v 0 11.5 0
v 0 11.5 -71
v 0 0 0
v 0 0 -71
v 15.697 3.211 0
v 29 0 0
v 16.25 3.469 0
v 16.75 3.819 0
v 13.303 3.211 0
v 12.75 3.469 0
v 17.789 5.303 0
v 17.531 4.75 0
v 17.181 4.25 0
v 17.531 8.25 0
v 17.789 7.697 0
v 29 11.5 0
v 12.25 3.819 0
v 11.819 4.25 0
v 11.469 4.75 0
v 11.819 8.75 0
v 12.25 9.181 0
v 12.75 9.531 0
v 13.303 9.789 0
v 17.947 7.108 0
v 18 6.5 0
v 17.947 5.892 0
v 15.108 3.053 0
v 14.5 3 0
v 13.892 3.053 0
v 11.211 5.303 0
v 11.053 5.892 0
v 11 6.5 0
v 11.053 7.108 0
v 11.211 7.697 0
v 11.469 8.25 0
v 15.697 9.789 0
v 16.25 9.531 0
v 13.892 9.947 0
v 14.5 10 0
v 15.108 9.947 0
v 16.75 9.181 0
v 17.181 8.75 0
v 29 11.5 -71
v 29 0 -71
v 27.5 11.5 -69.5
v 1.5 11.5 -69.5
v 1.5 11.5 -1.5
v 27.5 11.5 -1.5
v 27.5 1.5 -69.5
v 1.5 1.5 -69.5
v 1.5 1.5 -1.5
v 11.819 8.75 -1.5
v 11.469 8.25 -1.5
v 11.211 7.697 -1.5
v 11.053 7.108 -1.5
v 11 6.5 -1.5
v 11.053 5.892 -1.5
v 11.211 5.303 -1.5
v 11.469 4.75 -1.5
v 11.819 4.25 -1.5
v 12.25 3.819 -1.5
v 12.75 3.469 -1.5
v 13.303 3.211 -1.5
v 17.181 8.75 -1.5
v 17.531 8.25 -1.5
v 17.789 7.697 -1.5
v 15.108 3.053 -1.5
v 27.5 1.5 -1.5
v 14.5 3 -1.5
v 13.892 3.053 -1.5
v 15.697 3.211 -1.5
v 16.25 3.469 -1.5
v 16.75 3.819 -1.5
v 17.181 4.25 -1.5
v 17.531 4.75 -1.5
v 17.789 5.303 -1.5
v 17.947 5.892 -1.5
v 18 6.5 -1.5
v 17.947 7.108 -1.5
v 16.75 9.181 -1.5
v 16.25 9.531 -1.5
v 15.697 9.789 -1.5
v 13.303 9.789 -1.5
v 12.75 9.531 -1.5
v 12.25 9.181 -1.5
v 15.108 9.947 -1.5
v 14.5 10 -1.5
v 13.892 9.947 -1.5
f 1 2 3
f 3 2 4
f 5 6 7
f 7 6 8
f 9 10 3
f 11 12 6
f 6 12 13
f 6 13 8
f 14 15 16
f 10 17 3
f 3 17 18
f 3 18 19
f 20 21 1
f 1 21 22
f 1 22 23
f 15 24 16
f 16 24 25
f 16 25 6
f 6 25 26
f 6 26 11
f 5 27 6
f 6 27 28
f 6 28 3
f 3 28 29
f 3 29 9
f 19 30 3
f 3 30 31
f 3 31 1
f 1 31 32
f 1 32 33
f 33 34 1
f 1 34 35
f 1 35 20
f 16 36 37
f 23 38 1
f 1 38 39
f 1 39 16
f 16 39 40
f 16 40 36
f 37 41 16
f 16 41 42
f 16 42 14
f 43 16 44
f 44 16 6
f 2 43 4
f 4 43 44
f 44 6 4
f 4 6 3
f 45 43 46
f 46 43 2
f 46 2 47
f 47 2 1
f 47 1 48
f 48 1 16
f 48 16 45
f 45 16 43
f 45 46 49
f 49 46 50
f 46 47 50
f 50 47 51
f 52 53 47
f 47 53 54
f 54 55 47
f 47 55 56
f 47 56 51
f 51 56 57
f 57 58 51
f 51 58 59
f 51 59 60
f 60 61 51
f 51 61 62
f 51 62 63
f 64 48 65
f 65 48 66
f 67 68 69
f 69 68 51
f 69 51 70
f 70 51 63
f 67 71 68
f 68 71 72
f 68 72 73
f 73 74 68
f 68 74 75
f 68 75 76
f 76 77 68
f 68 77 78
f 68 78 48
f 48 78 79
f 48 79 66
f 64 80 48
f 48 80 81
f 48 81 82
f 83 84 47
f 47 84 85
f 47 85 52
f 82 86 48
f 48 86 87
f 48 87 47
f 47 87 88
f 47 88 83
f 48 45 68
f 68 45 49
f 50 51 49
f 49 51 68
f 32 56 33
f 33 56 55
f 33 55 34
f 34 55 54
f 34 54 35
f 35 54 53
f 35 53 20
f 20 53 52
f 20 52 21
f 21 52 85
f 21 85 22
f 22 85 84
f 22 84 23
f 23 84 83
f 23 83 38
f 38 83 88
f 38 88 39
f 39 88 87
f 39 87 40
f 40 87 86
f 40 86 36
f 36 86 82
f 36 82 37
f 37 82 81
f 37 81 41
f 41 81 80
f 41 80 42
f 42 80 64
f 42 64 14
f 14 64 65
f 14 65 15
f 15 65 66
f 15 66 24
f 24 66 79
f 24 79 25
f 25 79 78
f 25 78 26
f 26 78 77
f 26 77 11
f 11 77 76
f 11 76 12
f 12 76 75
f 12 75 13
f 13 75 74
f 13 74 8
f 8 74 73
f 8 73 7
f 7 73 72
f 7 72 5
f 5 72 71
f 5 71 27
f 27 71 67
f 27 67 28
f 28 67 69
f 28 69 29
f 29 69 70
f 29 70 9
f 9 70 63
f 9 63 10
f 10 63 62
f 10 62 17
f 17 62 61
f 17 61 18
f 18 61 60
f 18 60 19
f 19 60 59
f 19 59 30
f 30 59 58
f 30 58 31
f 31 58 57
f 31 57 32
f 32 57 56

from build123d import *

# Parameters (mm, degrees)
SKETCH1_W           = 29
SKETCH1_H           = 71
BOSS_EXTRUDE1_DEPTH = 1.5
SKETCH2_W           = 29
SKETCH2_H           = 71
SKETCH2_W_2         = 26
SKETCH2_H_2         = 68
BOSS_EXTRUDE2_DEPTH = 10
SKETCH3_R           = 3.5
CUT_EXTRUDE1_DEPTH  = 9


with BuildPart() as part:
    # Sketch1 → Boss-Extrude1 (new body)
    with BuildSketch(Plane(origin=(0, 0, 0), x_dir=(1, 0, 0), z_dir=(0, 1, 0))):
        with Locations((14.5, 35.5)):
            Rectangle(SKETCH1_W, SKETCH1_H)
    extrude(amount=BOSS_EXTRUDE1_DEPTH)

    # Sketch2 → Boss-Extrude2 (add)
    with BuildSketch(Plane(origin=(0, 1.5, 0), x_dir=(1, 0, 0), z_dir=(0, 1, 0))):
        with Locations((14.5, 35.5)):
            Rectangle(SKETCH2_W, SKETCH2_H)
        with Locations((14.5, 35.5)):
            Rectangle(SKETCH2_W_2, SKETCH2_H_2, mode=Mode.SUBTRACT)
    extrude(amount=BOSS_EXTRUDE2_DEPTH)

    # Sketch3 → Cut-Extrude1 (cut)
    with BuildSketch(Plane(origin=(0, 0, -1.5), x_dir=(-1, 0, 0), z_dir=(0, 0, -1))):
        with Locations((-14.5, 6.5)):
            Circle(SKETCH3_R)
    extrude(amount=-CUT_EXTRUDE1_DEPTH, mode=Mode.SUBTRACT)


solid = part.part
